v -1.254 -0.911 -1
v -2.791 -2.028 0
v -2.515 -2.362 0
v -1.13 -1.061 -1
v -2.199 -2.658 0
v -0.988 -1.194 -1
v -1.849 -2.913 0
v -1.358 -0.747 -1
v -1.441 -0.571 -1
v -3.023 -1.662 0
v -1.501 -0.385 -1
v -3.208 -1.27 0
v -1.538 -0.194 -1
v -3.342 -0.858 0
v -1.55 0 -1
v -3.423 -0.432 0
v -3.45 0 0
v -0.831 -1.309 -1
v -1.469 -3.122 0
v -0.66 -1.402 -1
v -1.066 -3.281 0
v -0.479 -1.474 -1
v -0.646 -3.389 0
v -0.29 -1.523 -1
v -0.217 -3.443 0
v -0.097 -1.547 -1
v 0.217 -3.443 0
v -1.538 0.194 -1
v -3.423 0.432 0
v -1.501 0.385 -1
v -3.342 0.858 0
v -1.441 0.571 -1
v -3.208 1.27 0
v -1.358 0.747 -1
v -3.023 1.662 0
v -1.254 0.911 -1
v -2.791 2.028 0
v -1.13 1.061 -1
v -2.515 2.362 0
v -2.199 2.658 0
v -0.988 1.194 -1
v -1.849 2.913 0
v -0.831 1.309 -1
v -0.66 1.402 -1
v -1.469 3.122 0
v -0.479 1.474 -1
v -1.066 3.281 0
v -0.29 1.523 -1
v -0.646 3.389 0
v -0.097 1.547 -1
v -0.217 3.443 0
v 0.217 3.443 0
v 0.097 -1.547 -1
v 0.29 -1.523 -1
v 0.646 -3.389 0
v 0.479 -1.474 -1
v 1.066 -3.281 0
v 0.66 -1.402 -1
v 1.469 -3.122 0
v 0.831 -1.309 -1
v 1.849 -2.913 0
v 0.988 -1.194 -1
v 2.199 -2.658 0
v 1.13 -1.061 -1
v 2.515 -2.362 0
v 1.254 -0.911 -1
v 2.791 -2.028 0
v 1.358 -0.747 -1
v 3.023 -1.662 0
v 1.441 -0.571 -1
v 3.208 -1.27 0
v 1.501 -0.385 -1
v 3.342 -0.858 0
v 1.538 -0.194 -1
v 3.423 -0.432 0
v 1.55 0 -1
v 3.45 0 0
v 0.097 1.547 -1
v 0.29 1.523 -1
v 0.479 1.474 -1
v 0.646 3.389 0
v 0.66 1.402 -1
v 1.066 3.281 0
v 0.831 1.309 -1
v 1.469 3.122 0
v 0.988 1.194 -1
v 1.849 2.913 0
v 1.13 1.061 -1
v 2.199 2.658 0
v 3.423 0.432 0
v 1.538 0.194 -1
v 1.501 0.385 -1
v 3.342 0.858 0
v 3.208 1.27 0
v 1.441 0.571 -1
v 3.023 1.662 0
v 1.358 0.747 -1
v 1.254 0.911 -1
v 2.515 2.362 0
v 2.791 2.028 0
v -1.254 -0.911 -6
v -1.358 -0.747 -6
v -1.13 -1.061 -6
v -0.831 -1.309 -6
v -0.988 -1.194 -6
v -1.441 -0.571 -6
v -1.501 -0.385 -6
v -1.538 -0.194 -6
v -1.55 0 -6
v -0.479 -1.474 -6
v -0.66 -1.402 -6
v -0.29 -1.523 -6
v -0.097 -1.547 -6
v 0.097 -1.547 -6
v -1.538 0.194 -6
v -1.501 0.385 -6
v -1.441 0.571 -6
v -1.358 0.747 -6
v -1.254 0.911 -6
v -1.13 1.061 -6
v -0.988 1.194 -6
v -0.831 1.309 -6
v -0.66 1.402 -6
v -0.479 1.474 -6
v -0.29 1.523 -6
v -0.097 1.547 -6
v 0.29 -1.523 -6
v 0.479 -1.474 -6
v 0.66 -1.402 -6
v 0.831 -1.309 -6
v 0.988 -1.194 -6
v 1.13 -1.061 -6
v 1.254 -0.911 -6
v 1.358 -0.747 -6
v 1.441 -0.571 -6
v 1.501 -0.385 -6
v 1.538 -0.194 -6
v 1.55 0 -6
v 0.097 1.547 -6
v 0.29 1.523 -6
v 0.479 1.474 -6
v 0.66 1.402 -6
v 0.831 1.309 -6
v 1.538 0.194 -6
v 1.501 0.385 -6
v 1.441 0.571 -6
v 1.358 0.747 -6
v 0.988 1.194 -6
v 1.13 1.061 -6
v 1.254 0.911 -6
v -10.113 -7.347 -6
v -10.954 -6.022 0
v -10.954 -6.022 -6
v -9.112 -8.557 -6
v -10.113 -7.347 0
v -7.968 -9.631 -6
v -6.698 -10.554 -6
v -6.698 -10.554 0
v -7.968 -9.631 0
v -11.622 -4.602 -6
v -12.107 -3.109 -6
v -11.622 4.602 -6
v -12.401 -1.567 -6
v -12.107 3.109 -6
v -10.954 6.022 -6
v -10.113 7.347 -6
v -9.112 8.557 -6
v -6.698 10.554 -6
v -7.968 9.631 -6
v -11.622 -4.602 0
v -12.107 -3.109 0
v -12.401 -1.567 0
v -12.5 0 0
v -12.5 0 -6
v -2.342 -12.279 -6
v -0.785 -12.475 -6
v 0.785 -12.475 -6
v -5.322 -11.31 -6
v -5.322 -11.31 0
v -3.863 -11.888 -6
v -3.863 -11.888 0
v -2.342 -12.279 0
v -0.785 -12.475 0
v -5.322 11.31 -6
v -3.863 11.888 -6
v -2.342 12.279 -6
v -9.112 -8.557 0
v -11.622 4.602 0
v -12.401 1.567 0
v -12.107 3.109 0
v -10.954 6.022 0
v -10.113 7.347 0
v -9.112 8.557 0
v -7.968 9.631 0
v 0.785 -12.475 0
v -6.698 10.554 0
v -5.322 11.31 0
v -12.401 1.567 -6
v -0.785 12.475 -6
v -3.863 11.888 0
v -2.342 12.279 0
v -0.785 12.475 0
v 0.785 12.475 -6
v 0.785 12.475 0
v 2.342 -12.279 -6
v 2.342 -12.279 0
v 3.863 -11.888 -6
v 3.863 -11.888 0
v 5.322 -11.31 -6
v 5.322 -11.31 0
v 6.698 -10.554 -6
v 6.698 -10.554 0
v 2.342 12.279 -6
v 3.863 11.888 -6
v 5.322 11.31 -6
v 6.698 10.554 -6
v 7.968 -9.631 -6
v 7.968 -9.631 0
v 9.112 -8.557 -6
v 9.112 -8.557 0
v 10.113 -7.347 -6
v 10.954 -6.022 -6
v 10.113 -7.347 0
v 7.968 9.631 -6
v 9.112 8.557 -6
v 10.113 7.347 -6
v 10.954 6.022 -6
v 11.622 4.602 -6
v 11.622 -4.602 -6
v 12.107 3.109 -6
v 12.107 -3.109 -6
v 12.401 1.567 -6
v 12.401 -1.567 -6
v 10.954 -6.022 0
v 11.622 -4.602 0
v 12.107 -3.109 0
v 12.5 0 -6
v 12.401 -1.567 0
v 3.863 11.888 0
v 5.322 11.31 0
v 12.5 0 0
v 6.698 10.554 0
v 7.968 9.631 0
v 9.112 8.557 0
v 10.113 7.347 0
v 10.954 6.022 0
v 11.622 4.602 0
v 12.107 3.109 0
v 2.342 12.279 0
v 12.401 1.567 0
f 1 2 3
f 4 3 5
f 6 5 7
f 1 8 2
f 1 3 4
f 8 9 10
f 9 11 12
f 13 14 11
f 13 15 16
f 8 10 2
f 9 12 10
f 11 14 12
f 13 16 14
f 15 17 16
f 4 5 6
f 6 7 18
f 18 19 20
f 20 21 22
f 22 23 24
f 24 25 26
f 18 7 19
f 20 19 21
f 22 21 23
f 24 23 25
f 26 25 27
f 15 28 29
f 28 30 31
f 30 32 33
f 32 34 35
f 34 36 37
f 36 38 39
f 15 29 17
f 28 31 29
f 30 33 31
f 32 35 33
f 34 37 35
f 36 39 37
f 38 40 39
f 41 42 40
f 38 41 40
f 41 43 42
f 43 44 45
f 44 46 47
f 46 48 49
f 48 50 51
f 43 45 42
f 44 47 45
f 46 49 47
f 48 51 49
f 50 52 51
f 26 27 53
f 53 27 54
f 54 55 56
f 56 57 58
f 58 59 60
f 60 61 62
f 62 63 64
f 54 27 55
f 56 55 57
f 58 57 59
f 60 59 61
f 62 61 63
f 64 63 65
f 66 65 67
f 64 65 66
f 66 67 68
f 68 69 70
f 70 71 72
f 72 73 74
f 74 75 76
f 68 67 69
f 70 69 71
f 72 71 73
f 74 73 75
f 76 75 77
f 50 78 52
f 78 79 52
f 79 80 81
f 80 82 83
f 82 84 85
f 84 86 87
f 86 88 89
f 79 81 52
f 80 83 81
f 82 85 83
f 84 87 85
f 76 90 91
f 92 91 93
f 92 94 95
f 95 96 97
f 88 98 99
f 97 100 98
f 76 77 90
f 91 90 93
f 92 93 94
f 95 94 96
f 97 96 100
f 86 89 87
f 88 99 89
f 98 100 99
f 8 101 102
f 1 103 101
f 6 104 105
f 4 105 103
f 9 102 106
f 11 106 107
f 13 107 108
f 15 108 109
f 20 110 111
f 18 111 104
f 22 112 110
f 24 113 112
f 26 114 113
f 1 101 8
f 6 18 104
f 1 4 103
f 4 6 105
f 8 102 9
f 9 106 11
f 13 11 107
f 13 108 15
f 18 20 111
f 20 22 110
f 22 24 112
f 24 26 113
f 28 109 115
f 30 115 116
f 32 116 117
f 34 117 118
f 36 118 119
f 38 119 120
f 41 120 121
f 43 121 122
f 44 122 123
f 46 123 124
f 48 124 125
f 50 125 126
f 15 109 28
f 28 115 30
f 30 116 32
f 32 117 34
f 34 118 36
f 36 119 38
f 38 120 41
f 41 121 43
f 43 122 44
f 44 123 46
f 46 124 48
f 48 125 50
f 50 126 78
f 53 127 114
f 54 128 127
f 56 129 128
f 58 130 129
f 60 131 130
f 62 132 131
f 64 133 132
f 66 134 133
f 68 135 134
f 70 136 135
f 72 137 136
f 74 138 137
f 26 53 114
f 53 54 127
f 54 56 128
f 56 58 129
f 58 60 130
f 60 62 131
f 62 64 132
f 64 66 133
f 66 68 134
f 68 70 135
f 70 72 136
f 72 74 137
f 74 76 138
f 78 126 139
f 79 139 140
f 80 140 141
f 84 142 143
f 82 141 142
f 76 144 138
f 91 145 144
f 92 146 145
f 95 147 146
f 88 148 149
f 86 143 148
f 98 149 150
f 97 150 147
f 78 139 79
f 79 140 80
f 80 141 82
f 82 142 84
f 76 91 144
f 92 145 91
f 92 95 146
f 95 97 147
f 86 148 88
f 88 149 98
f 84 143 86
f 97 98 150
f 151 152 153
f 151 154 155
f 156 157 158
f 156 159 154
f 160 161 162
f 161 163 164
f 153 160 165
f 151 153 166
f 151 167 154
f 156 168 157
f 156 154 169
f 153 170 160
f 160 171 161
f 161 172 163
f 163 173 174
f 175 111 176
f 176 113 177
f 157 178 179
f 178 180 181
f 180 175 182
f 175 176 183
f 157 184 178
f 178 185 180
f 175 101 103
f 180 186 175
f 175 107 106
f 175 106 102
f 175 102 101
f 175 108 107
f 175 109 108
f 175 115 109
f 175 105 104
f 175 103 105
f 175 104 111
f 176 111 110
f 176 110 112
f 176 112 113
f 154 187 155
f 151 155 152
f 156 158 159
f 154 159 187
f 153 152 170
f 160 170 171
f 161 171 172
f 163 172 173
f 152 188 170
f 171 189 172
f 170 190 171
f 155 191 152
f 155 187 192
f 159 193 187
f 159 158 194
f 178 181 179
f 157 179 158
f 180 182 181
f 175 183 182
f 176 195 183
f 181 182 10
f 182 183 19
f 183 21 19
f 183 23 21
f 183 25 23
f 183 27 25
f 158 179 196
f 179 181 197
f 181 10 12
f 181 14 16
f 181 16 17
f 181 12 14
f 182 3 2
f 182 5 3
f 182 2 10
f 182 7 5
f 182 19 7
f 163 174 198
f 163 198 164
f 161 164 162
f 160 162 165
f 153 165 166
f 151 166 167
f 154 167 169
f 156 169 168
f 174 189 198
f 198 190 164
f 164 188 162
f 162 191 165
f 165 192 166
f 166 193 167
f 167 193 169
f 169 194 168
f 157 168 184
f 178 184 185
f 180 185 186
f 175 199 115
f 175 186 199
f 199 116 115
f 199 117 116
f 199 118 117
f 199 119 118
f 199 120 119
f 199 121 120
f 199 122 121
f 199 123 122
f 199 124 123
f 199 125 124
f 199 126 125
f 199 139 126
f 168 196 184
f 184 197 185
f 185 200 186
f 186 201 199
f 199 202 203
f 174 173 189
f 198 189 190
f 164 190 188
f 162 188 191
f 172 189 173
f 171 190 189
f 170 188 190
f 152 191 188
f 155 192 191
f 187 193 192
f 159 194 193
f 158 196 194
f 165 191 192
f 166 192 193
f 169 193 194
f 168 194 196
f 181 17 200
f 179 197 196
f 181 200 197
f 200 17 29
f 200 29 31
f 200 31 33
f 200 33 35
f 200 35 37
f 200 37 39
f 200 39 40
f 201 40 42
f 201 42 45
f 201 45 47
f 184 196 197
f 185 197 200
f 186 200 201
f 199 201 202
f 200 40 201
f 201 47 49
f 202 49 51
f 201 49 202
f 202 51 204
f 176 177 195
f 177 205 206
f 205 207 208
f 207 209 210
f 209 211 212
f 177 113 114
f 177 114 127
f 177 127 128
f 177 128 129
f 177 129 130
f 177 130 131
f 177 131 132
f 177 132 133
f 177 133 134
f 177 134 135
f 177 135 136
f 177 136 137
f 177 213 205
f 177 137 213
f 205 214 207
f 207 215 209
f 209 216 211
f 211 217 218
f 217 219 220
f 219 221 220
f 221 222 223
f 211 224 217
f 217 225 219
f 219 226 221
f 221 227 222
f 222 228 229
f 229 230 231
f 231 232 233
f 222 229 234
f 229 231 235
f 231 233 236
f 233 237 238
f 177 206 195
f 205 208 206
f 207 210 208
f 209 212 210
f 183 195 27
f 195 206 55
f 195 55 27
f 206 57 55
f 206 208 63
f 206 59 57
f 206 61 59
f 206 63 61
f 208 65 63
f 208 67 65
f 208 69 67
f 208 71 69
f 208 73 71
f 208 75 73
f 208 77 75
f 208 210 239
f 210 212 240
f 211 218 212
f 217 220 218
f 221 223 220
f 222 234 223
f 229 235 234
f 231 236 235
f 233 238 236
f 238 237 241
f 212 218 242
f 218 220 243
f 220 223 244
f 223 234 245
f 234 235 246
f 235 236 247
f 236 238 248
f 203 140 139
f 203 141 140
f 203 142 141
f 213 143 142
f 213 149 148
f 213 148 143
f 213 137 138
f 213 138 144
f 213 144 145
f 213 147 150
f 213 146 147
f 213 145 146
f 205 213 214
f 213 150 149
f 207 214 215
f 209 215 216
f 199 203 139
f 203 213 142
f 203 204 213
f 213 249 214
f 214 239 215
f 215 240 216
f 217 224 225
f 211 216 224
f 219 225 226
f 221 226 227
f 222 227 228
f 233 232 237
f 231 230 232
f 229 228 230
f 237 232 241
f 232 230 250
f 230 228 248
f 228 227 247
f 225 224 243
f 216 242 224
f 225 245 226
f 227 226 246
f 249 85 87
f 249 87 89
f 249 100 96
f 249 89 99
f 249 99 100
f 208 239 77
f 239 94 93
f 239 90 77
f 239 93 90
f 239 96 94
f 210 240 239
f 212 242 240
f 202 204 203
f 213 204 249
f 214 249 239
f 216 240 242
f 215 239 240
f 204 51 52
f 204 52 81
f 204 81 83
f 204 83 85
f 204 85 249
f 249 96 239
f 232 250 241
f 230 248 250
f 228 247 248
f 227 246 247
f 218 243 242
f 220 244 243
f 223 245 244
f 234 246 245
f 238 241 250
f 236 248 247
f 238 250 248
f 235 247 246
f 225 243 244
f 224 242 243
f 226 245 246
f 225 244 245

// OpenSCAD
$fn = 50;


difference() {
	union() {
		translate(v = [0, 0, -6.0000000000]) {
			cylinder(h = 6, r = 12.5000000000);
		}
	}
	union() {
		translate(v = [0, 0, 0]) {
			rotate(a = [0, 0, 0]) {
				difference() {
					union() {
						translate(v = [0, 0, -9.0000000000]) {
							cylinder(h = 9, r = 1.2500000000);
						}
						translate(v = [0, 0, -1.0000000000]) {
							cylinder(h = 1.0000000000, r1 = 1.5500000000, r2 = 3.4500000000);
						}
						translate(v = [0, 0, -9.0000000000]) {
							cylinder(h = 9, r = 1.5500000000);
						}
						translate(v = [0, 0, -9.0000000000]) {
							cylinder(h = 9, r = 1.2500000000);
						}
					}
					union();
				}
			}
		}
	}
}
